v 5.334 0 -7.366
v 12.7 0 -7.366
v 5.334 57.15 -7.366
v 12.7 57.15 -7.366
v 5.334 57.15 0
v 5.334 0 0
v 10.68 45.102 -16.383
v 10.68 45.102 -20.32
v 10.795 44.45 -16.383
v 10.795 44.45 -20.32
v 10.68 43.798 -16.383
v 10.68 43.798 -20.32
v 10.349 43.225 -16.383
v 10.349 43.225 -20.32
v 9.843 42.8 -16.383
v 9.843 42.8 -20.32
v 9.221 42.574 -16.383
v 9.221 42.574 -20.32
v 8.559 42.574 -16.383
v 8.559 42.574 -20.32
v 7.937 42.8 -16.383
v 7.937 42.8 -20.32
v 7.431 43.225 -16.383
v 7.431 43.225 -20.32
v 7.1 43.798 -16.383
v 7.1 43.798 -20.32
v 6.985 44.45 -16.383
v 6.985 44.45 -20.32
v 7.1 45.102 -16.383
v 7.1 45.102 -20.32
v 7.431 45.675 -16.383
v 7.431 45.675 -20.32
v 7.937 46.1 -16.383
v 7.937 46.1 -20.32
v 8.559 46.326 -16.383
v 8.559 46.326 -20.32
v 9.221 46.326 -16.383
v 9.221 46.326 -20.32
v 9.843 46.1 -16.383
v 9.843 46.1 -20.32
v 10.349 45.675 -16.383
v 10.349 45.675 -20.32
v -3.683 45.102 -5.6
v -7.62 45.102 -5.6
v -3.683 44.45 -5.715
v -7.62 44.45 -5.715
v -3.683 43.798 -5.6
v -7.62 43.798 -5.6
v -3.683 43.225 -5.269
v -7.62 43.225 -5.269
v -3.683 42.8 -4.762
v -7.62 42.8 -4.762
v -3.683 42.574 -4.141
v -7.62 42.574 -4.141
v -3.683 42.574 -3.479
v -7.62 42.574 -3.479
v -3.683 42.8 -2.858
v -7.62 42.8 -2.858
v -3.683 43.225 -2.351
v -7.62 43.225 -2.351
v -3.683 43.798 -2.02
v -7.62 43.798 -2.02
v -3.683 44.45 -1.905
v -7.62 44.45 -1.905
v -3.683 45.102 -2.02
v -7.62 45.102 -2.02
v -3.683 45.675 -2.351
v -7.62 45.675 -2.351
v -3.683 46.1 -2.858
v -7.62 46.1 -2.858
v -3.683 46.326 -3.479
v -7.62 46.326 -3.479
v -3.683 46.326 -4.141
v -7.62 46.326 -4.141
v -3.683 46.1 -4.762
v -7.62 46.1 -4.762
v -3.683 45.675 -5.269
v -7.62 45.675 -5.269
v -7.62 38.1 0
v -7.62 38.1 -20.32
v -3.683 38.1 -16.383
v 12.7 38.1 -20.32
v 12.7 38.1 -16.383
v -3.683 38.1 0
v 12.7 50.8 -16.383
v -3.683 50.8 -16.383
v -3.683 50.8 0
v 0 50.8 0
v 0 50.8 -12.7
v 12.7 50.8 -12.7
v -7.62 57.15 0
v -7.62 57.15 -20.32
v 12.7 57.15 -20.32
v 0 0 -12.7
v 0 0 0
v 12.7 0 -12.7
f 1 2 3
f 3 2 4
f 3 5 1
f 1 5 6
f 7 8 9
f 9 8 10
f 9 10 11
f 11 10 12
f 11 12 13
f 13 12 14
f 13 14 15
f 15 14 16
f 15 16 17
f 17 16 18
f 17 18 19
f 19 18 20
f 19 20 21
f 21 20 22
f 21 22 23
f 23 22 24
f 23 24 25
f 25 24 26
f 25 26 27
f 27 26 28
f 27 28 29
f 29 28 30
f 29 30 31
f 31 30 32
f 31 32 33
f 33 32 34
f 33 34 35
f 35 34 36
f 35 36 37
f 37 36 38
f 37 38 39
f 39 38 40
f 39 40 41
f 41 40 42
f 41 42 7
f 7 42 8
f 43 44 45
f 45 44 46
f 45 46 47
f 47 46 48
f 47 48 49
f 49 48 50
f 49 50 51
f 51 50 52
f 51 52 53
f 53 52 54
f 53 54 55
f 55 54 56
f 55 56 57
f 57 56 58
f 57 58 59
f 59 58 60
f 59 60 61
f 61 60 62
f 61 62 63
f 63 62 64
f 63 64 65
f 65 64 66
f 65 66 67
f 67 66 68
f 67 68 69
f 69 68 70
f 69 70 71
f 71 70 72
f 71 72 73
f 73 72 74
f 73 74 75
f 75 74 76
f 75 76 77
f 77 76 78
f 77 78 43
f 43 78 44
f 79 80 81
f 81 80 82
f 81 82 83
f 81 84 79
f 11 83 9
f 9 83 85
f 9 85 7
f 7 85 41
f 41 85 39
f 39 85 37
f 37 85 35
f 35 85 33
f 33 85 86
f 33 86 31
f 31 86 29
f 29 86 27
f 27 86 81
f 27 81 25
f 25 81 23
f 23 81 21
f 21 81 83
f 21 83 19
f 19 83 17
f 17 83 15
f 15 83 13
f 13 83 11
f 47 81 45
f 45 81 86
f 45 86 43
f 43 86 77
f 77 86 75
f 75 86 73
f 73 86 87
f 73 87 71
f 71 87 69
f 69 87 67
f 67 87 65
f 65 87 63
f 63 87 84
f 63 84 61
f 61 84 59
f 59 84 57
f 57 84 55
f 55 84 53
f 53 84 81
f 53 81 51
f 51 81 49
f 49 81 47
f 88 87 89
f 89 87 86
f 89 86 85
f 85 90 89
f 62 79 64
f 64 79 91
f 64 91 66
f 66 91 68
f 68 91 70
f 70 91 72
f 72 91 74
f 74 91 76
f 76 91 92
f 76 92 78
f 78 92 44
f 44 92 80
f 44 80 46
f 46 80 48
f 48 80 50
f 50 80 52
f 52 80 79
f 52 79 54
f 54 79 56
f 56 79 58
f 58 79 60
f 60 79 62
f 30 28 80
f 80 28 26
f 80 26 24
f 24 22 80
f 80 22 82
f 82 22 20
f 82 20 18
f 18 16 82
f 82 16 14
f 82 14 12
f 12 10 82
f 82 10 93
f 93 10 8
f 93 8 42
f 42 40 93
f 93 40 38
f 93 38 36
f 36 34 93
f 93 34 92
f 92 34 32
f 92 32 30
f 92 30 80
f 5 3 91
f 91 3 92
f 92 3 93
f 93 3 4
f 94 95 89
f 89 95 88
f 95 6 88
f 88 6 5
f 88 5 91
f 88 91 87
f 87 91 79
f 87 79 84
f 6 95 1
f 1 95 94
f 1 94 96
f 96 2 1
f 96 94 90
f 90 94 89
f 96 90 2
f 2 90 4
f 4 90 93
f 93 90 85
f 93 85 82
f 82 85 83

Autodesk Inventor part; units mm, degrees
ref_plane "YZ Plane" through (0, 0, 0) normal (1, 0, 0) x (0, 1, 0)
ref_plane "XZ Plane" through (0, 0, 0) normal (0, 1, 0) x (-1, 0, 0)
ref_plane "XY Plane" through (0, 0, 0) normal (0, 0, 1) x (1, 0, 0)
sketch "Sketch1" plane through (0, 0, 0) normal (0, 1, 0) x (-1, 0, 0)
  line L0 (0, 0) -> (-2.54, 0)
  line L1 (-2.54, 0) -> (-2.54, -12.7)
  line L2 (-2.54, -12.7) -> (0, -12.7)
  line L3 (0, -12.7) -> (0, 0)
  line L4 (0, -12.7) -> (-12.7, -12.7)
  line L5 (-12.7, -12.7) -> (-12.7, -10.16)
  line L6 (-12.7, -10.16) -> (0, -10.16)
  line L7 (0, -10.16) -> (0, -12.7)
  dimension "d0" = 12.7
  dimension "d1" = 12.7
  dimension "d2" = 2.54
  dimension "d3" = 2.54
extrude "Extrusion1" add sketch "Sketch1" along normal blind 50.8
sketch "Sketch2" plane through (0, 50.8, 0) normal (0, 1, 0) x (1, 0, 0)
  line L0 (2.54, 0) -> (-7.62, 0)
  line L1 (-7.62, 0) -> (-7.62, 20.32)
  line L2 (-7.62, 20.32) -> (2.54, 20.32)
  line L3 (2.54, 20.32) -> (2.54, 0)
  line L4 (12.7, 10.16) -> (12.7, 12.7) projected
  line L5 (12.7, 10.16) -> (-7.62, 10.16)
  line L6 (-7.62, 10.16) -> (-7.62, 20.32)
  line L7 (-7.62, 20.32) -> (12.7, 20.32)
  line L8 (12.7, 20.32) -> (12.7, 10.16)
  line L9 (2.54, 0) -> (2.54, 10.16) projected
  point P0 (0, 0)
  dimension "d6" = 10.16
  dimension "d7" = 0
  dimension "d8" = 10.16
  dimension "d9" = 20.32
extrude "Extrusion2" add sketch "Sketch2" along normal blind 6.35
sketch "Sketch3" plane through (0, 50.8, 0) normal (0, -1, 0) x (1, 0, 0)
  line L0 (-7.62, -20.32) -> (12.7, -20.32) projected
  line L1 (12.7, -20.32) -> (-7.62, -20.32)
  line L2 (-7.62, -20.32) -> (-7.62, -16.383)
  line L3 (-7.62, -16.383) -> (12.7, -16.383)
  line L4 (12.7, -16.383) -> (12.7, -20.32)
  line L5 (-7.62, 0) -> (-3.683, 0)
  line L6 (-3.683, 0) -> (-3.683, -20.32)
  line L7 (-3.683, -20.32) -> (-7.62, -20.32)
  line L8 (-7.62, -20.32) -> (-7.62, 0)
  line L9 (0, -12.7) -> (0, 0) projected
  line L10 (12.7, -12.7) -> (0, -12.7) projected
  dimension "d12" = 3.683
  dimension "d13" = 3.683
extrude "Extrusion3" add sketch "Sketch3" along normal blind 12.7
sketch "Sketch4" plane through (-7.62, 57.15, -20.32) normal (-1, 0, 0) x (0, 0, 1)
  line L0 (20.32, 0) -> (20.32, -19.05) projected
  line L1 (0, 0) -> (20.32, 0) projected
  point P0 (20.32, -57.15)
  point P1 (16.51, -12.7)
  point P2 (20.32, -6.35)
  dimension "d16" = 3.81
  dimension "d27" = 6.35
hole "Hole1" at (-7.62, 44.45, -3.81) direction (1, 0, 0) diameter 3.81 depth 4.318 tip angle 118
sketch "Sketch5" plane through (12.7, 57.15, -20.32) normal (0, 0, -1) x (-1, 0, 0)
  line L0 (16.383, -6.35) -> (0, -6.35) projected
  line L1 (0, 0) -> (0, -19.05) projected
  point P0 (12.7, -57.15)
  point P1 (3.81, -12.7)
  dimension "d28" = 6.35
  dimension "d29" = 3.81
hole "Hole2" at (8.89, 44.45, -20.32) direction (0, 0, 1) diameter 3.81 depth 4.445 tip angle 118
sketch "Sketch6" plane through (0, 0, 0) normal (0, 1, 0) x (-1, 0, 0)
  line L0 (-2.54, 0) -> (-2.54, -10.16) projected
  line L1 (-2.54, 0) -> (-5.334, 0)
  line L2 (-5.334, 0) -> (-5.334, -10.16)
  line L3 (-5.334, -10.16) -> (-2.54, -10.16)
  line L4 (-2.54, -10.16) -> (-2.54, 0)
  line L5 (-2.54, -10.16) -> (-12.7, -10.16) projected
  line L6 (-12.7, -10.16) -> (-2.54, -10.16)
  line L7 (-2.54, -10.16) -> (-2.54, -7.366)
  line L8 (-2.54, -7.366) -> (-12.7, -7.366)
  line L9 (-12.7, -7.366) -> (-12.7, -10.16)
  point P0 (0, 0)
  dimension "d37" = 2.794
  dimension "d38" = 2.794
extrude "Extrusion4" add sketch "Sketch6" along normal blind 57.15
equation "\"d38\" = d37"
properties part number "TelescopeGroot 8"
